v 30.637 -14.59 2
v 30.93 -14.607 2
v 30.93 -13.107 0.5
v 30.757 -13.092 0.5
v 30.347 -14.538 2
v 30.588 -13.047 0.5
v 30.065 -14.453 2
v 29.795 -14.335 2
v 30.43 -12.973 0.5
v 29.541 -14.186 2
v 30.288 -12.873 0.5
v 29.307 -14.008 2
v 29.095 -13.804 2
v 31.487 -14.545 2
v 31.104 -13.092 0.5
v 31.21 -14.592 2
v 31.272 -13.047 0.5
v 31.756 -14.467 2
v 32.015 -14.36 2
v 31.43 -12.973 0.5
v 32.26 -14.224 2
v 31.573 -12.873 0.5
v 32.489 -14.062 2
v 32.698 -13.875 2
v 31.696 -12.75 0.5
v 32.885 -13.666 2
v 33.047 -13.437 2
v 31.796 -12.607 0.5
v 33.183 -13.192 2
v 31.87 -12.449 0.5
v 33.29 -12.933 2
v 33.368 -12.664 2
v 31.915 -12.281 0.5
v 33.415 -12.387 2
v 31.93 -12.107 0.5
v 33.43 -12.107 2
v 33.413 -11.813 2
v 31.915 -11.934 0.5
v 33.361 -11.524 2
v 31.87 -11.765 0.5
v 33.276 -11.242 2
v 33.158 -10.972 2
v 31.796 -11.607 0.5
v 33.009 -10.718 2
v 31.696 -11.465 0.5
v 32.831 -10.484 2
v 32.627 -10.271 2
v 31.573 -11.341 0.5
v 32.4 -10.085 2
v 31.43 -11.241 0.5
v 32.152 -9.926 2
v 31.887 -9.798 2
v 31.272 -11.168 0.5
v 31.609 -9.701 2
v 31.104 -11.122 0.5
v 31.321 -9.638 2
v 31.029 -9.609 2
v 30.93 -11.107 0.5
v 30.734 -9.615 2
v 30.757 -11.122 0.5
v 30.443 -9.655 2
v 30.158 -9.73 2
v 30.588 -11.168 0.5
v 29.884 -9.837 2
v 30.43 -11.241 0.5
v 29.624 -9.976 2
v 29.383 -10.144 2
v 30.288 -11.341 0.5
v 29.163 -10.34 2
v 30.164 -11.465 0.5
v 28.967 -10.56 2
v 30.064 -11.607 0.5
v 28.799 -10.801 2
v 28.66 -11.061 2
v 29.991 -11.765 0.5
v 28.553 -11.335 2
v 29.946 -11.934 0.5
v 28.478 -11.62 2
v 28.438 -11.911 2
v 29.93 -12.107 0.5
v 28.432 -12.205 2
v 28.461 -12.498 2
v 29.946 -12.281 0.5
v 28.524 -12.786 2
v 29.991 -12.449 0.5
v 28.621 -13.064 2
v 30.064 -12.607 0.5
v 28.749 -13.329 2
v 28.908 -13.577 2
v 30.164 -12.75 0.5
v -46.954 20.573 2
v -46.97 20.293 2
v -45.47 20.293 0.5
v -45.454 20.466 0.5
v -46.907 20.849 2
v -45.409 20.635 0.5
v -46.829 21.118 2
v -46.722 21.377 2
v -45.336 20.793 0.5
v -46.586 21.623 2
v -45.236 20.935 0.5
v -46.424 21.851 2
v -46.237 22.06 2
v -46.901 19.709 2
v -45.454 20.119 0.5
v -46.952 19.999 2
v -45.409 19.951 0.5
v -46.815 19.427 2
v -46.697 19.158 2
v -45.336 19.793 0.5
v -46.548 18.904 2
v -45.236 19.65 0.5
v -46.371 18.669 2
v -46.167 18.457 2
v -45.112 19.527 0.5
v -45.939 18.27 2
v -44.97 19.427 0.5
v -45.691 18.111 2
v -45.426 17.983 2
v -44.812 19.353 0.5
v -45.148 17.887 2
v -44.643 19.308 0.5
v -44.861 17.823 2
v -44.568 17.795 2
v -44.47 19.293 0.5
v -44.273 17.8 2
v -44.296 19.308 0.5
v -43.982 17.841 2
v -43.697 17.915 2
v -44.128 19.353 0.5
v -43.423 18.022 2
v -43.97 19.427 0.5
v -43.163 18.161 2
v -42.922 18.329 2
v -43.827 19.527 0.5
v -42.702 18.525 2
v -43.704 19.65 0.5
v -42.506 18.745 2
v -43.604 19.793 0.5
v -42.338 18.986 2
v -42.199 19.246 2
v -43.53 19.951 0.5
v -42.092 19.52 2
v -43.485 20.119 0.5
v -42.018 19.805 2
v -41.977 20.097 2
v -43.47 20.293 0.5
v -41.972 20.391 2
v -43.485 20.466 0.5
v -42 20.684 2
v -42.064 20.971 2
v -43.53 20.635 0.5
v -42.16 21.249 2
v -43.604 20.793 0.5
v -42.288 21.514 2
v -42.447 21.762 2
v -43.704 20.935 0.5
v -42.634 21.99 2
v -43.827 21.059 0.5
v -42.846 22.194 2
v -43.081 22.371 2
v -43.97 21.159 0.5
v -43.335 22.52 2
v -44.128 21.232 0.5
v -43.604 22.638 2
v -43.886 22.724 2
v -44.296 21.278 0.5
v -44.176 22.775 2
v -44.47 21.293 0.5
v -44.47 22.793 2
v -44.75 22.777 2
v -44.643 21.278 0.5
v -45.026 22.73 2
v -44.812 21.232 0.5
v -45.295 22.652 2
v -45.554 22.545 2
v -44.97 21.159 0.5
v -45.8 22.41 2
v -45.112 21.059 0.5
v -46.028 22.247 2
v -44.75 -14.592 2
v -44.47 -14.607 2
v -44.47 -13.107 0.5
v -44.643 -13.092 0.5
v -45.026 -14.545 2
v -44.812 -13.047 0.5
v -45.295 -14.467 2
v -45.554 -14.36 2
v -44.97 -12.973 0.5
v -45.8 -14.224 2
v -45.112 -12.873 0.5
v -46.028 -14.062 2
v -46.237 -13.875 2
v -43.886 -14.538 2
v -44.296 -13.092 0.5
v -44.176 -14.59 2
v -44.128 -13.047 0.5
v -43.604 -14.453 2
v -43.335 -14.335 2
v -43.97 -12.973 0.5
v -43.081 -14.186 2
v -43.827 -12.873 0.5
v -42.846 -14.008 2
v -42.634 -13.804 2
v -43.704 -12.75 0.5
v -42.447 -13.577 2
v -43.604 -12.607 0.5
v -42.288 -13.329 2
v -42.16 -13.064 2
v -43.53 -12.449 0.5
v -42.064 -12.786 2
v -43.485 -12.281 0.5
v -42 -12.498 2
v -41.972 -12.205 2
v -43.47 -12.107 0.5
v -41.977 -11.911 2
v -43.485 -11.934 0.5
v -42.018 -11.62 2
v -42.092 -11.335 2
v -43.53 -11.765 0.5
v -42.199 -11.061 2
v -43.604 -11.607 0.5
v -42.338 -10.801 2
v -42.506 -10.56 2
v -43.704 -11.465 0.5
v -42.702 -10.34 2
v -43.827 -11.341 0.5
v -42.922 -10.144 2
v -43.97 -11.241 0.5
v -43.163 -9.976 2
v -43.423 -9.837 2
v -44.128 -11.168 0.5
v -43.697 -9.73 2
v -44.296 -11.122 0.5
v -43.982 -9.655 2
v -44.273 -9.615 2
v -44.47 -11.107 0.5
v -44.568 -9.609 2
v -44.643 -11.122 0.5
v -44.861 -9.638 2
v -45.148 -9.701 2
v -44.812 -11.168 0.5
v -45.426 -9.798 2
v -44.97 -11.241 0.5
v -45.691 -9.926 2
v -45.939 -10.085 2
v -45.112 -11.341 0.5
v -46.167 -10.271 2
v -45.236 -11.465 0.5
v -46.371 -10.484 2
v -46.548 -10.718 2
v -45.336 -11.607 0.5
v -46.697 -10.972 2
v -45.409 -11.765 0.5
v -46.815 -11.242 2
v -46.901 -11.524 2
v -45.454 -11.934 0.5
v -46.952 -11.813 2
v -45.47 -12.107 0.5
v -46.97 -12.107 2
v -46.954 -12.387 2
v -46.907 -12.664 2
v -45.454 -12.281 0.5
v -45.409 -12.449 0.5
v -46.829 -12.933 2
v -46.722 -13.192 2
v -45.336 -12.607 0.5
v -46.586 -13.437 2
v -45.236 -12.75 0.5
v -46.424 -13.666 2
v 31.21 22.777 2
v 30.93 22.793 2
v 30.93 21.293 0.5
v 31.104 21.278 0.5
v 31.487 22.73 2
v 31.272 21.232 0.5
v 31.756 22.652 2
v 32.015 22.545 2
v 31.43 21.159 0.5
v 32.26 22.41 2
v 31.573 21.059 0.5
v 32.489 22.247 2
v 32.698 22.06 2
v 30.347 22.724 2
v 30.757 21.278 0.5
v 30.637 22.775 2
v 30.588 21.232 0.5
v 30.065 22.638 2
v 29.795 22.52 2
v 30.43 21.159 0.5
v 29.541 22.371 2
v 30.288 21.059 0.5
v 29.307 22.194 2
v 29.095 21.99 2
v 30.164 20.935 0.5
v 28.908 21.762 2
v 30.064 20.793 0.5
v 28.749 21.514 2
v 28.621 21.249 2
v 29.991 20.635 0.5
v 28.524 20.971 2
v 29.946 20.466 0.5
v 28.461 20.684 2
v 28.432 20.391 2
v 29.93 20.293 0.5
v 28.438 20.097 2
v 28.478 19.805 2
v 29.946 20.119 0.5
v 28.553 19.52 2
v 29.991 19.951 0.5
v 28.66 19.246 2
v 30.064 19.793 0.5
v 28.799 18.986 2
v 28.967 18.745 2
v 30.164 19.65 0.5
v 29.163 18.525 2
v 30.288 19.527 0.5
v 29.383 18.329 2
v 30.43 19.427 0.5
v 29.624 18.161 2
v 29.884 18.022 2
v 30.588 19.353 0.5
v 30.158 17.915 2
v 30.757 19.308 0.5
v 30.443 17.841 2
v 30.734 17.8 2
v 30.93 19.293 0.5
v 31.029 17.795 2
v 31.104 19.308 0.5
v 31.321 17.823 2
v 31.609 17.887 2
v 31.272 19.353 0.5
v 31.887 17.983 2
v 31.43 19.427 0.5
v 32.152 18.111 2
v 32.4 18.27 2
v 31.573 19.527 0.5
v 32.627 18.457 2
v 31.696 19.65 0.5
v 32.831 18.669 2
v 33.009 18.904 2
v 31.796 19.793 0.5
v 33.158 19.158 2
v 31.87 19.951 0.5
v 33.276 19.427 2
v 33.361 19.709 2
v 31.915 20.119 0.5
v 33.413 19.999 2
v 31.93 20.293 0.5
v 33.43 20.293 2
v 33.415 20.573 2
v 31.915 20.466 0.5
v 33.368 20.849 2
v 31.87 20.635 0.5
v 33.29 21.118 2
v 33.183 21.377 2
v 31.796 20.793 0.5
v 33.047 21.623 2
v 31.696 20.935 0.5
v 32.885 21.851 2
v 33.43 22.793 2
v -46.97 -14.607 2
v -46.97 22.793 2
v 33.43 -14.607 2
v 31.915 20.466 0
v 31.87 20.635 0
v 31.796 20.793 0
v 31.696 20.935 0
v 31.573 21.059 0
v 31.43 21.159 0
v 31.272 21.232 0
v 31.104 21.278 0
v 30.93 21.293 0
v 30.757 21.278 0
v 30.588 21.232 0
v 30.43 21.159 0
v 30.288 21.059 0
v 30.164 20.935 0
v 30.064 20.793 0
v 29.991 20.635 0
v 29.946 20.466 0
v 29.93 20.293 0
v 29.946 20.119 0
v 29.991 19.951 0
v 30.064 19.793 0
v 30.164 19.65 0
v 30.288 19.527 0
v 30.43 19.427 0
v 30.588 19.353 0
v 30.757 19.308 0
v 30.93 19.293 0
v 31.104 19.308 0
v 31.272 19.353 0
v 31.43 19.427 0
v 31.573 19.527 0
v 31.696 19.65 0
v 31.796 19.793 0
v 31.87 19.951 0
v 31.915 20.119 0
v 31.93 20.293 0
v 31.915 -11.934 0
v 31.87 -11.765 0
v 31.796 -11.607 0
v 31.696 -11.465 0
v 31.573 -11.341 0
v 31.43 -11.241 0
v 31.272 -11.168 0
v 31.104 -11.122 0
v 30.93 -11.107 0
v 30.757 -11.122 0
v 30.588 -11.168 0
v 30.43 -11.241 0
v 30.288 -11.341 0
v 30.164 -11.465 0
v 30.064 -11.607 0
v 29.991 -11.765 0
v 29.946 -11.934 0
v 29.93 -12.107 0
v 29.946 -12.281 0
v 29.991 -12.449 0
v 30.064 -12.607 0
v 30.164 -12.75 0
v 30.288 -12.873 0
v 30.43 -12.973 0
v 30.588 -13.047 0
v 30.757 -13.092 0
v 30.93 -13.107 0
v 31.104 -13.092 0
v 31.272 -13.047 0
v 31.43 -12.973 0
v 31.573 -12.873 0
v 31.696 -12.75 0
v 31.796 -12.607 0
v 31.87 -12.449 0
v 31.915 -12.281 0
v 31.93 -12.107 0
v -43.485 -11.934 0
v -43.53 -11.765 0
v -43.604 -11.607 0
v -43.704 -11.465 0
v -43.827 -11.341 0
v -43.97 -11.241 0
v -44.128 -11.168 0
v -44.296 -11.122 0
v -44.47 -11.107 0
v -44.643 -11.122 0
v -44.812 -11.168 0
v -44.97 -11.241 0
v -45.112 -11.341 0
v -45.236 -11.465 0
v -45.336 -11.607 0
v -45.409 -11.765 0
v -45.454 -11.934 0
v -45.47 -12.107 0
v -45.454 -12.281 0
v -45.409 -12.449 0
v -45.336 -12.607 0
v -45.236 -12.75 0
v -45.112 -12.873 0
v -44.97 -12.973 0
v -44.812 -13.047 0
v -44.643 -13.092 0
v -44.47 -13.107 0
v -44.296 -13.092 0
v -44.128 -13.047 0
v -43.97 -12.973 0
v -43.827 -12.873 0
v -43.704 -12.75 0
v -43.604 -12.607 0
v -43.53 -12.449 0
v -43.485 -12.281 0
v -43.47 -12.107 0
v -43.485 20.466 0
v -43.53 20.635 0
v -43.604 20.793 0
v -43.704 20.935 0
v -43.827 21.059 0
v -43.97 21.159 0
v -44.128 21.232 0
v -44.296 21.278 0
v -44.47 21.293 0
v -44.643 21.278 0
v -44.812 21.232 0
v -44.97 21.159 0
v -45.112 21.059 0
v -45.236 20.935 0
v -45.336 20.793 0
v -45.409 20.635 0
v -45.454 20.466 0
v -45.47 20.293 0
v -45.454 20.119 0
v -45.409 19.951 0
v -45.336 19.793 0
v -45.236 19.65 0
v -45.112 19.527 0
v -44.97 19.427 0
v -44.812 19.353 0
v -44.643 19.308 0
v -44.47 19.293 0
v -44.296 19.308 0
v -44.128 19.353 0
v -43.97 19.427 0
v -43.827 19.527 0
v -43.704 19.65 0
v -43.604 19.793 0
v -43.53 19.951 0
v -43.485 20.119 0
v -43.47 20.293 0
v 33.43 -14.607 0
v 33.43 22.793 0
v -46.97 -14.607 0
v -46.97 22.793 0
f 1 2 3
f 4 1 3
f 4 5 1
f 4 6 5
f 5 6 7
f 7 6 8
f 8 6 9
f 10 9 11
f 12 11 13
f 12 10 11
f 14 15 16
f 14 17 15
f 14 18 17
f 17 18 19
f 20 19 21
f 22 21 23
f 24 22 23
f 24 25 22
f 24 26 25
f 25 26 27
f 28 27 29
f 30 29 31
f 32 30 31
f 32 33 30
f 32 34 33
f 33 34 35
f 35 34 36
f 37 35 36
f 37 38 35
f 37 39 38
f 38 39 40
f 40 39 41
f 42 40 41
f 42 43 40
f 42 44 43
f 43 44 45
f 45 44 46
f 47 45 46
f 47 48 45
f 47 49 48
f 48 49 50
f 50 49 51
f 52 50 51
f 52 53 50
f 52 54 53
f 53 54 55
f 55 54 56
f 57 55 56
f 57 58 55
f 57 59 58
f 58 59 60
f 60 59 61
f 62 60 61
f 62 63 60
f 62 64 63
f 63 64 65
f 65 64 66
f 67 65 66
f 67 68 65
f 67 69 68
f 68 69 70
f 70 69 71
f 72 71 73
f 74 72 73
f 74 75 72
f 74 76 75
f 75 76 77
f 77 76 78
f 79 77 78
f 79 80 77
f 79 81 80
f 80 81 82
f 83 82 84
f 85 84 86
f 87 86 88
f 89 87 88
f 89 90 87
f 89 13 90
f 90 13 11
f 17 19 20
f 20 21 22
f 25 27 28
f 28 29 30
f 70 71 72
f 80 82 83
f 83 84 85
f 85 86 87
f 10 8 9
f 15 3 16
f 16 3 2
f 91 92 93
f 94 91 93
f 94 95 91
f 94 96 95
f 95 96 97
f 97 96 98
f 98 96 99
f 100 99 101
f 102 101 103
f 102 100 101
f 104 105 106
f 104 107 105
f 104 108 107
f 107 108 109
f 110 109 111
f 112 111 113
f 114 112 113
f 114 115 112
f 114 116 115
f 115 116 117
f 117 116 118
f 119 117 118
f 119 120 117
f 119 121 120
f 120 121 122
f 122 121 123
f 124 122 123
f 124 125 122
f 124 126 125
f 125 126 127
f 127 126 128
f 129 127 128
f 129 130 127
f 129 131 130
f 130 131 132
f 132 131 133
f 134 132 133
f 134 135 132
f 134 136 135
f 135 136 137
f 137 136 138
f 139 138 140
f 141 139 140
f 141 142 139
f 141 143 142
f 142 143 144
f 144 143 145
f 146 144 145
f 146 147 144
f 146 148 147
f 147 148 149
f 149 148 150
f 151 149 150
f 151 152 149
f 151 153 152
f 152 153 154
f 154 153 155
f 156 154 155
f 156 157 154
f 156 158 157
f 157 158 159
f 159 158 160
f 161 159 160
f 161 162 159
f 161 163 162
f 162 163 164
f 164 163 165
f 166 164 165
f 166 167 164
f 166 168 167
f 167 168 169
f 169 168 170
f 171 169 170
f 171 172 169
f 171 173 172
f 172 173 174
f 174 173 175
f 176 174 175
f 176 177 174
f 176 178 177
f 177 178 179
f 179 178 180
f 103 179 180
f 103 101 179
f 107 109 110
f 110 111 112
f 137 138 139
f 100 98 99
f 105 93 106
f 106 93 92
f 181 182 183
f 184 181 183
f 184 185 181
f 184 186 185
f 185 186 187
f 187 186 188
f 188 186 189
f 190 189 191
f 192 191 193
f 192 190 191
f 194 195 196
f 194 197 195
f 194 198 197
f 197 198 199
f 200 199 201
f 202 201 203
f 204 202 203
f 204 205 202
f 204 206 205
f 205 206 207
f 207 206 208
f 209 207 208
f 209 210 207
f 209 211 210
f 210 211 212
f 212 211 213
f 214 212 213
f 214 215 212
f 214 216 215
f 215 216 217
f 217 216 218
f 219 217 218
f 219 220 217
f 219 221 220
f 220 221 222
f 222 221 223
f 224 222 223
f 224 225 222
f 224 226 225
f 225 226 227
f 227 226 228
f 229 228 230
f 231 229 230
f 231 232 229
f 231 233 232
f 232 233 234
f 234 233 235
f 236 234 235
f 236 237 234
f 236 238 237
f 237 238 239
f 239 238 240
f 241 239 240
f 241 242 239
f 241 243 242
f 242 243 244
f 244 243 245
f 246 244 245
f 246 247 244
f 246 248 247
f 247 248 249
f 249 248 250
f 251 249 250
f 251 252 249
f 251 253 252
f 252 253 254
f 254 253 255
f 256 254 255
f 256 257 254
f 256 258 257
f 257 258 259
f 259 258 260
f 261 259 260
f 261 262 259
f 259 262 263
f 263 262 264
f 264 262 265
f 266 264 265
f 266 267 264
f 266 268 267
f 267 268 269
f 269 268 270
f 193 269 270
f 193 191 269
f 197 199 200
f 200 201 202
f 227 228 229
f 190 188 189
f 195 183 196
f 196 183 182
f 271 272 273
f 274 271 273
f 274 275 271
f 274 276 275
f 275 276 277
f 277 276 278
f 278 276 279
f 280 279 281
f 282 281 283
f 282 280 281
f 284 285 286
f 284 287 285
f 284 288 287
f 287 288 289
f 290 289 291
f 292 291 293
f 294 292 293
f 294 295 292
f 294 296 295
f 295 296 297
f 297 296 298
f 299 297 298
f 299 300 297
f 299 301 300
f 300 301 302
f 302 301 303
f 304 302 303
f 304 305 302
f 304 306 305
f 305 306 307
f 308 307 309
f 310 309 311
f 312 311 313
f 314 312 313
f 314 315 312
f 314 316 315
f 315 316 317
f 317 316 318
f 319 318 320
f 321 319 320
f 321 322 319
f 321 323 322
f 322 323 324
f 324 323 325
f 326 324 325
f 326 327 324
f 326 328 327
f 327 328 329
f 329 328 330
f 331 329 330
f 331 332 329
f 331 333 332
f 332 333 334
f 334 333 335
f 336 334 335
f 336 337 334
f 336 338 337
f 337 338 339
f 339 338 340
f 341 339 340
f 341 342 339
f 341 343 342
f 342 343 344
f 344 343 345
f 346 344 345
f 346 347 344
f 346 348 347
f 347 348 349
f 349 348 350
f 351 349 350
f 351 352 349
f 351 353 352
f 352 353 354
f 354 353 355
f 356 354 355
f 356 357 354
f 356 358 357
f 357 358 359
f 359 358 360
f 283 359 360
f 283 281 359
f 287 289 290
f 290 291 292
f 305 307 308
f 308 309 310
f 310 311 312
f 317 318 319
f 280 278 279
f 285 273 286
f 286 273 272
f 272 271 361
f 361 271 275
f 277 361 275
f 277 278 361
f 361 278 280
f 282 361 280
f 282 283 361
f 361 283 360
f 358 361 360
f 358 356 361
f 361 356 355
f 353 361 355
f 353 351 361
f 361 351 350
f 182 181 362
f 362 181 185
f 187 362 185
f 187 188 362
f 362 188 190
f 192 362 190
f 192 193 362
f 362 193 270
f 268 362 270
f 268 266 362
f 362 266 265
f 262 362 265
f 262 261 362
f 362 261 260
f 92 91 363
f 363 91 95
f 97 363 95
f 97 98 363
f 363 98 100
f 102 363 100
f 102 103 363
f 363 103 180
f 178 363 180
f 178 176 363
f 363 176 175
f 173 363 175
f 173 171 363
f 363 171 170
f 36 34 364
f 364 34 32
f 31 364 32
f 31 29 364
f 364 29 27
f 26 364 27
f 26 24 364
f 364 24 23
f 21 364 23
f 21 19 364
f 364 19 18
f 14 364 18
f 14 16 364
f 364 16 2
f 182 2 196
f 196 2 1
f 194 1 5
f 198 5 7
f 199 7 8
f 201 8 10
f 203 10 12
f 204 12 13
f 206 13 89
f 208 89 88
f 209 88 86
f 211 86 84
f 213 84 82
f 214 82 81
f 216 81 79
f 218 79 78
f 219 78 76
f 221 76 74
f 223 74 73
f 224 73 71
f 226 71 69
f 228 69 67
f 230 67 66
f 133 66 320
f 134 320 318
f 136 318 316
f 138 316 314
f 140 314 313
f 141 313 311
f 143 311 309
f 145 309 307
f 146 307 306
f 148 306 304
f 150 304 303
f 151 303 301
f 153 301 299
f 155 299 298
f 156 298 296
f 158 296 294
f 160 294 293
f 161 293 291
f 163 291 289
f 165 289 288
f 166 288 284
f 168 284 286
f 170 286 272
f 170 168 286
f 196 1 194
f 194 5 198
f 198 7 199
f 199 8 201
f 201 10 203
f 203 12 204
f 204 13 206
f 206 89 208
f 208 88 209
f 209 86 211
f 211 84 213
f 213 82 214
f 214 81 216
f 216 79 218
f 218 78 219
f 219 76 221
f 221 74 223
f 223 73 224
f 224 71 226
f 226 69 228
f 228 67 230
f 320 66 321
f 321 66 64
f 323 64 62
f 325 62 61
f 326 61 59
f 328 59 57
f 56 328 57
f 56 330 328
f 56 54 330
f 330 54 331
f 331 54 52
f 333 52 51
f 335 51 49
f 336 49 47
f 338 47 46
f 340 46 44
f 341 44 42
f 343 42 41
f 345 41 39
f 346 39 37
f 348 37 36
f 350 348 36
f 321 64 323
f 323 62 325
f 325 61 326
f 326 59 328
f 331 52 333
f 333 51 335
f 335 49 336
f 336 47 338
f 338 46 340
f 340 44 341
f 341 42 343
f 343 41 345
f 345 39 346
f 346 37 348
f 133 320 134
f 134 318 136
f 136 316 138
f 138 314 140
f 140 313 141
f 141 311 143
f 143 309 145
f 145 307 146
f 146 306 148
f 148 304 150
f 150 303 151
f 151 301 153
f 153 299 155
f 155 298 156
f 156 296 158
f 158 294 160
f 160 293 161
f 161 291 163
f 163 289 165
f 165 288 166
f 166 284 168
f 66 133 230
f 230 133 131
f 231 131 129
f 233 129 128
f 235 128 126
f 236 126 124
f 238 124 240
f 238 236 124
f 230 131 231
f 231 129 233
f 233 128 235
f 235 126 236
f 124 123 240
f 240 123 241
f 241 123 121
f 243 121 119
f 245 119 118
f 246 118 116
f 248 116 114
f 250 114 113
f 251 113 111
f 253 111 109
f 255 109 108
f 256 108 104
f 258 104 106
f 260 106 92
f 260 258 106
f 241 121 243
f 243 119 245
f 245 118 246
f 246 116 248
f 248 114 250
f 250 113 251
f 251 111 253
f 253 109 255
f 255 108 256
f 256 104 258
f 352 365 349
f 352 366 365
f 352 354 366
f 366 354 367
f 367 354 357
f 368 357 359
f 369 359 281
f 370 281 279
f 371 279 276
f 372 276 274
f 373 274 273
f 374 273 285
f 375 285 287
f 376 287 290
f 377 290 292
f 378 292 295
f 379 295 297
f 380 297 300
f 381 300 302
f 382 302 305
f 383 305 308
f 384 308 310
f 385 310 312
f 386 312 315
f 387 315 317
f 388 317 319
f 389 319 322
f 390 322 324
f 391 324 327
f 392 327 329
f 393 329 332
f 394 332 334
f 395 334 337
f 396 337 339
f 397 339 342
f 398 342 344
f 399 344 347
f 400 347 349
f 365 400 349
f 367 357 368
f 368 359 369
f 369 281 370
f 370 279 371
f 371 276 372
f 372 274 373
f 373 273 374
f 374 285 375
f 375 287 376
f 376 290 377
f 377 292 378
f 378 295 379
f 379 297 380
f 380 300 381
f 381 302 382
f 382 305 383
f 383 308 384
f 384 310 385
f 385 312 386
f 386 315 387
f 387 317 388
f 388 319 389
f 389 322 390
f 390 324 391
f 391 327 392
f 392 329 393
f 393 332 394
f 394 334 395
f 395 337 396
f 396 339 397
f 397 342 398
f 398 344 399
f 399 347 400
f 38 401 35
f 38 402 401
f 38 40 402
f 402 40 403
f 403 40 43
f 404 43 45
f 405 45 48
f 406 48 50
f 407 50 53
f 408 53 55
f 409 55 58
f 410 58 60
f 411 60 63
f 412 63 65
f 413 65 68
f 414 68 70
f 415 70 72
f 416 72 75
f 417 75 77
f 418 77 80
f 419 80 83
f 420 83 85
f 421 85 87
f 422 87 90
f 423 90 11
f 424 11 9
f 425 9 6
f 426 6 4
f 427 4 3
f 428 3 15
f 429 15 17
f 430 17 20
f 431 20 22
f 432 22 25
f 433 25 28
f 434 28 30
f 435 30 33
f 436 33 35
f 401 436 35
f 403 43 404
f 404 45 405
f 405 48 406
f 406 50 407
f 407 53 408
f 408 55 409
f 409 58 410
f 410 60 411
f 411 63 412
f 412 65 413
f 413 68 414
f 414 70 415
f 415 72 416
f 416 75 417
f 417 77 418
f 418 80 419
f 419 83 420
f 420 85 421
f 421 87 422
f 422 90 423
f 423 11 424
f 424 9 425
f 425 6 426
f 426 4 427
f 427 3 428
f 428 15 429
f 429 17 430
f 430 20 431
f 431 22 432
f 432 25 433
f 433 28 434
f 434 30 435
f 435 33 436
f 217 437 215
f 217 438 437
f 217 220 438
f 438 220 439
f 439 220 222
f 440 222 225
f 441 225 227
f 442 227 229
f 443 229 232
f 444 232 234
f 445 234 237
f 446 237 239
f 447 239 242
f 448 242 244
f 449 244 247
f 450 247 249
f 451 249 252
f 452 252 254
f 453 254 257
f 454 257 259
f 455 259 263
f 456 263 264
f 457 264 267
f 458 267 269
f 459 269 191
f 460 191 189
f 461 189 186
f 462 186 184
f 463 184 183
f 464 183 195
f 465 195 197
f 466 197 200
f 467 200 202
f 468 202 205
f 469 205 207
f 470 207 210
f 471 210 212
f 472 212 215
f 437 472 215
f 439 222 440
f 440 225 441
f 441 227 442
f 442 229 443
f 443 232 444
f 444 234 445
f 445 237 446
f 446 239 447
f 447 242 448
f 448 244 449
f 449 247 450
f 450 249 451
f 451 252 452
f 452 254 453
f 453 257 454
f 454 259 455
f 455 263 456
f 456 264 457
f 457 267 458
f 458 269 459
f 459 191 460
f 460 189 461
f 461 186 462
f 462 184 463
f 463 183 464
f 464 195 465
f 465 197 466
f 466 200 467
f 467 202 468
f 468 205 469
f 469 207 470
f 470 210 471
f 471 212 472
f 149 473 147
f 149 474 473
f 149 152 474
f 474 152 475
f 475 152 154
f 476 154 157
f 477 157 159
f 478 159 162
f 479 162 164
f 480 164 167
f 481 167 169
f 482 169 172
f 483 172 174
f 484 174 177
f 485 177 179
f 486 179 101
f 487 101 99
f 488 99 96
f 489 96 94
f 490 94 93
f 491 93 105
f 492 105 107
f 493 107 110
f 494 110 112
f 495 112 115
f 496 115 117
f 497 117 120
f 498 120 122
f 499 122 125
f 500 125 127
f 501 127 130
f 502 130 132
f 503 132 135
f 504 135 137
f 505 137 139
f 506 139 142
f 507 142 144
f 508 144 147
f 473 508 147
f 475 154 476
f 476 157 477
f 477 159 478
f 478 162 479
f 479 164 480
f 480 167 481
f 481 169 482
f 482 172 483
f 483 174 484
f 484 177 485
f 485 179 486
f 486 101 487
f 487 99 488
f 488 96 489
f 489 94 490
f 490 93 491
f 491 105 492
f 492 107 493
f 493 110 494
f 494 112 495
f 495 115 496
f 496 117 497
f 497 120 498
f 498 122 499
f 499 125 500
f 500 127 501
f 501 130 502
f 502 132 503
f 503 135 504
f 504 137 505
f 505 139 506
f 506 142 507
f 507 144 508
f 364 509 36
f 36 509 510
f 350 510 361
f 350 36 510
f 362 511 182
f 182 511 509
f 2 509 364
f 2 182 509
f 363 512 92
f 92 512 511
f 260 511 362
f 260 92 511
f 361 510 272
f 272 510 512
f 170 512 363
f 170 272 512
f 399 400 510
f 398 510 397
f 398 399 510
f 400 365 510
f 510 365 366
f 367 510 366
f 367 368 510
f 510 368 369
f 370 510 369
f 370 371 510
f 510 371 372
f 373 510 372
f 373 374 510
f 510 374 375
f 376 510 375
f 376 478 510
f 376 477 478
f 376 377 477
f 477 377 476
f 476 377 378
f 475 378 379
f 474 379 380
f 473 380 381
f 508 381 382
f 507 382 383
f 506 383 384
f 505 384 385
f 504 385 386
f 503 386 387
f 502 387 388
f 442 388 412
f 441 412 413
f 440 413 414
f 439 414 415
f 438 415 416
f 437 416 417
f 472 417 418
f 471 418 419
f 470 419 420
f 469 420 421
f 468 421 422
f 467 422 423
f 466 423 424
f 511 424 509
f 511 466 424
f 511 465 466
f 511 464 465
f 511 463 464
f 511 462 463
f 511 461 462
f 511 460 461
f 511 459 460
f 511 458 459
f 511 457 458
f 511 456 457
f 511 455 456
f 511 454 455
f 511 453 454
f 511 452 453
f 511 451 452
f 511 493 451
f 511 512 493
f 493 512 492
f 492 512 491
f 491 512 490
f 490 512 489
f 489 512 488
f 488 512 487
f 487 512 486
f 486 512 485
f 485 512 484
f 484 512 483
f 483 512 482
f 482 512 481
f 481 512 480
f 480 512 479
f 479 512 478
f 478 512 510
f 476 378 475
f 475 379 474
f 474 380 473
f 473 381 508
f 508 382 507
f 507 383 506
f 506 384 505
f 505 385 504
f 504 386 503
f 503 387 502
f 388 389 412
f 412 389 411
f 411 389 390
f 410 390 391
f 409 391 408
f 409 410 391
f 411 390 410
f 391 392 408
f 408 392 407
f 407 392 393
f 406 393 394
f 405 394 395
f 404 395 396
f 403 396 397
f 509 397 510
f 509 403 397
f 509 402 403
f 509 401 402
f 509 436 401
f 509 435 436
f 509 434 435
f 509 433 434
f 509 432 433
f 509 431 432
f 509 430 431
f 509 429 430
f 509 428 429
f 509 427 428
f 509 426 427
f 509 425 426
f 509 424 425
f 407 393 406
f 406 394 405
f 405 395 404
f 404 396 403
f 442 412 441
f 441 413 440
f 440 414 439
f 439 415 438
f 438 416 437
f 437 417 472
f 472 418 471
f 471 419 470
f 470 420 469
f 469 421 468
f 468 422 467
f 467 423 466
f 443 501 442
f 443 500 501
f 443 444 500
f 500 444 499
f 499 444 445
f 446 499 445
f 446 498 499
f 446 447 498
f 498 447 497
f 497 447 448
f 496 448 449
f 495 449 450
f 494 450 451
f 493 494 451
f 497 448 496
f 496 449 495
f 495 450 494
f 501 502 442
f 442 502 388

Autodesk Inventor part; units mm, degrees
ref_plane "YZ Plane" through (0, 0, 0) normal (1, 0, 0) x (0, 1, 0)
ref_plane "XZ Plane" through (0, 0, 0) normal (0, 1, 0) x (-1, 0, 0)
ref_plane "XY Plane" through (0, 0, 0) normal (0, 0, 1) x (1, 0, 0)
sketch "Sketch1" plane through (0, 0, 0) normal (0, 0, 1) x (1, 0, 0)
  line L0 (-46.9696, 22.7927) -> (33.4304, 22.7927)
  line L1 (33.4304, 22.7927) -> (33.4304, -14.6073)
  line L2 (33.4304, -14.6073) -> (-46.9696, -14.6073)
  line L3 (-46.9696, -14.6073) -> (-46.9696, 22.7927)
  circle A0 centre (-44.4696, 20.2927) radius 1
  circle A1 centre (-44.4696, -12.1073) radius 1
  circle A2 centre (30.9304, -12.1073) radius 1
  circle A3 centre (30.9304, 20.2927) radius 1
  point P0 (0, 0)
  dimension "d0" = 80.4
  dimension "d1" = 37.4
  dimension "d2" = 75.4
  dimension "d3" = 32.4
  dimension "d4" = 32.4
  dimension "d5" = 75.4
  dimension "d6" = 2.5
  dimension "d7" = 2.5
  dimension "d8" = 2
  dimension "d9" = 2
  dimension "d10" = 2
  dimension "d11" = 2
extrude "Extrusion1" add sketch "Sketch1" along normal blind 2
sketch "Sketch2" plane through (0, 0, 2) normal (0, 0, 1) x (1, 0, 0)
  circle A0 centre (-44.4696, 20.2927) radius 1 projected
  circle A1 centre (-44.4696, -12.1073) radius 1 projected
  circle A2 centre (30.9304, -12.1073) radius 1 projected
  circle A3 centre (30.9304, 20.2927) radius 1 projected
  point P0 (0, 0)
hole "Hole1" at (-44.4696, 20.2927, 2) at (-44.4696, -12.1073, 2) at (30.9304, -12.1073, 2) at (30.9304, 20.2927, 2) direction (0, 0, -1) diameter 2 depth 8 tip angle 118 countersink diameter 5 countersink angle 90
properties part number "case cover"
